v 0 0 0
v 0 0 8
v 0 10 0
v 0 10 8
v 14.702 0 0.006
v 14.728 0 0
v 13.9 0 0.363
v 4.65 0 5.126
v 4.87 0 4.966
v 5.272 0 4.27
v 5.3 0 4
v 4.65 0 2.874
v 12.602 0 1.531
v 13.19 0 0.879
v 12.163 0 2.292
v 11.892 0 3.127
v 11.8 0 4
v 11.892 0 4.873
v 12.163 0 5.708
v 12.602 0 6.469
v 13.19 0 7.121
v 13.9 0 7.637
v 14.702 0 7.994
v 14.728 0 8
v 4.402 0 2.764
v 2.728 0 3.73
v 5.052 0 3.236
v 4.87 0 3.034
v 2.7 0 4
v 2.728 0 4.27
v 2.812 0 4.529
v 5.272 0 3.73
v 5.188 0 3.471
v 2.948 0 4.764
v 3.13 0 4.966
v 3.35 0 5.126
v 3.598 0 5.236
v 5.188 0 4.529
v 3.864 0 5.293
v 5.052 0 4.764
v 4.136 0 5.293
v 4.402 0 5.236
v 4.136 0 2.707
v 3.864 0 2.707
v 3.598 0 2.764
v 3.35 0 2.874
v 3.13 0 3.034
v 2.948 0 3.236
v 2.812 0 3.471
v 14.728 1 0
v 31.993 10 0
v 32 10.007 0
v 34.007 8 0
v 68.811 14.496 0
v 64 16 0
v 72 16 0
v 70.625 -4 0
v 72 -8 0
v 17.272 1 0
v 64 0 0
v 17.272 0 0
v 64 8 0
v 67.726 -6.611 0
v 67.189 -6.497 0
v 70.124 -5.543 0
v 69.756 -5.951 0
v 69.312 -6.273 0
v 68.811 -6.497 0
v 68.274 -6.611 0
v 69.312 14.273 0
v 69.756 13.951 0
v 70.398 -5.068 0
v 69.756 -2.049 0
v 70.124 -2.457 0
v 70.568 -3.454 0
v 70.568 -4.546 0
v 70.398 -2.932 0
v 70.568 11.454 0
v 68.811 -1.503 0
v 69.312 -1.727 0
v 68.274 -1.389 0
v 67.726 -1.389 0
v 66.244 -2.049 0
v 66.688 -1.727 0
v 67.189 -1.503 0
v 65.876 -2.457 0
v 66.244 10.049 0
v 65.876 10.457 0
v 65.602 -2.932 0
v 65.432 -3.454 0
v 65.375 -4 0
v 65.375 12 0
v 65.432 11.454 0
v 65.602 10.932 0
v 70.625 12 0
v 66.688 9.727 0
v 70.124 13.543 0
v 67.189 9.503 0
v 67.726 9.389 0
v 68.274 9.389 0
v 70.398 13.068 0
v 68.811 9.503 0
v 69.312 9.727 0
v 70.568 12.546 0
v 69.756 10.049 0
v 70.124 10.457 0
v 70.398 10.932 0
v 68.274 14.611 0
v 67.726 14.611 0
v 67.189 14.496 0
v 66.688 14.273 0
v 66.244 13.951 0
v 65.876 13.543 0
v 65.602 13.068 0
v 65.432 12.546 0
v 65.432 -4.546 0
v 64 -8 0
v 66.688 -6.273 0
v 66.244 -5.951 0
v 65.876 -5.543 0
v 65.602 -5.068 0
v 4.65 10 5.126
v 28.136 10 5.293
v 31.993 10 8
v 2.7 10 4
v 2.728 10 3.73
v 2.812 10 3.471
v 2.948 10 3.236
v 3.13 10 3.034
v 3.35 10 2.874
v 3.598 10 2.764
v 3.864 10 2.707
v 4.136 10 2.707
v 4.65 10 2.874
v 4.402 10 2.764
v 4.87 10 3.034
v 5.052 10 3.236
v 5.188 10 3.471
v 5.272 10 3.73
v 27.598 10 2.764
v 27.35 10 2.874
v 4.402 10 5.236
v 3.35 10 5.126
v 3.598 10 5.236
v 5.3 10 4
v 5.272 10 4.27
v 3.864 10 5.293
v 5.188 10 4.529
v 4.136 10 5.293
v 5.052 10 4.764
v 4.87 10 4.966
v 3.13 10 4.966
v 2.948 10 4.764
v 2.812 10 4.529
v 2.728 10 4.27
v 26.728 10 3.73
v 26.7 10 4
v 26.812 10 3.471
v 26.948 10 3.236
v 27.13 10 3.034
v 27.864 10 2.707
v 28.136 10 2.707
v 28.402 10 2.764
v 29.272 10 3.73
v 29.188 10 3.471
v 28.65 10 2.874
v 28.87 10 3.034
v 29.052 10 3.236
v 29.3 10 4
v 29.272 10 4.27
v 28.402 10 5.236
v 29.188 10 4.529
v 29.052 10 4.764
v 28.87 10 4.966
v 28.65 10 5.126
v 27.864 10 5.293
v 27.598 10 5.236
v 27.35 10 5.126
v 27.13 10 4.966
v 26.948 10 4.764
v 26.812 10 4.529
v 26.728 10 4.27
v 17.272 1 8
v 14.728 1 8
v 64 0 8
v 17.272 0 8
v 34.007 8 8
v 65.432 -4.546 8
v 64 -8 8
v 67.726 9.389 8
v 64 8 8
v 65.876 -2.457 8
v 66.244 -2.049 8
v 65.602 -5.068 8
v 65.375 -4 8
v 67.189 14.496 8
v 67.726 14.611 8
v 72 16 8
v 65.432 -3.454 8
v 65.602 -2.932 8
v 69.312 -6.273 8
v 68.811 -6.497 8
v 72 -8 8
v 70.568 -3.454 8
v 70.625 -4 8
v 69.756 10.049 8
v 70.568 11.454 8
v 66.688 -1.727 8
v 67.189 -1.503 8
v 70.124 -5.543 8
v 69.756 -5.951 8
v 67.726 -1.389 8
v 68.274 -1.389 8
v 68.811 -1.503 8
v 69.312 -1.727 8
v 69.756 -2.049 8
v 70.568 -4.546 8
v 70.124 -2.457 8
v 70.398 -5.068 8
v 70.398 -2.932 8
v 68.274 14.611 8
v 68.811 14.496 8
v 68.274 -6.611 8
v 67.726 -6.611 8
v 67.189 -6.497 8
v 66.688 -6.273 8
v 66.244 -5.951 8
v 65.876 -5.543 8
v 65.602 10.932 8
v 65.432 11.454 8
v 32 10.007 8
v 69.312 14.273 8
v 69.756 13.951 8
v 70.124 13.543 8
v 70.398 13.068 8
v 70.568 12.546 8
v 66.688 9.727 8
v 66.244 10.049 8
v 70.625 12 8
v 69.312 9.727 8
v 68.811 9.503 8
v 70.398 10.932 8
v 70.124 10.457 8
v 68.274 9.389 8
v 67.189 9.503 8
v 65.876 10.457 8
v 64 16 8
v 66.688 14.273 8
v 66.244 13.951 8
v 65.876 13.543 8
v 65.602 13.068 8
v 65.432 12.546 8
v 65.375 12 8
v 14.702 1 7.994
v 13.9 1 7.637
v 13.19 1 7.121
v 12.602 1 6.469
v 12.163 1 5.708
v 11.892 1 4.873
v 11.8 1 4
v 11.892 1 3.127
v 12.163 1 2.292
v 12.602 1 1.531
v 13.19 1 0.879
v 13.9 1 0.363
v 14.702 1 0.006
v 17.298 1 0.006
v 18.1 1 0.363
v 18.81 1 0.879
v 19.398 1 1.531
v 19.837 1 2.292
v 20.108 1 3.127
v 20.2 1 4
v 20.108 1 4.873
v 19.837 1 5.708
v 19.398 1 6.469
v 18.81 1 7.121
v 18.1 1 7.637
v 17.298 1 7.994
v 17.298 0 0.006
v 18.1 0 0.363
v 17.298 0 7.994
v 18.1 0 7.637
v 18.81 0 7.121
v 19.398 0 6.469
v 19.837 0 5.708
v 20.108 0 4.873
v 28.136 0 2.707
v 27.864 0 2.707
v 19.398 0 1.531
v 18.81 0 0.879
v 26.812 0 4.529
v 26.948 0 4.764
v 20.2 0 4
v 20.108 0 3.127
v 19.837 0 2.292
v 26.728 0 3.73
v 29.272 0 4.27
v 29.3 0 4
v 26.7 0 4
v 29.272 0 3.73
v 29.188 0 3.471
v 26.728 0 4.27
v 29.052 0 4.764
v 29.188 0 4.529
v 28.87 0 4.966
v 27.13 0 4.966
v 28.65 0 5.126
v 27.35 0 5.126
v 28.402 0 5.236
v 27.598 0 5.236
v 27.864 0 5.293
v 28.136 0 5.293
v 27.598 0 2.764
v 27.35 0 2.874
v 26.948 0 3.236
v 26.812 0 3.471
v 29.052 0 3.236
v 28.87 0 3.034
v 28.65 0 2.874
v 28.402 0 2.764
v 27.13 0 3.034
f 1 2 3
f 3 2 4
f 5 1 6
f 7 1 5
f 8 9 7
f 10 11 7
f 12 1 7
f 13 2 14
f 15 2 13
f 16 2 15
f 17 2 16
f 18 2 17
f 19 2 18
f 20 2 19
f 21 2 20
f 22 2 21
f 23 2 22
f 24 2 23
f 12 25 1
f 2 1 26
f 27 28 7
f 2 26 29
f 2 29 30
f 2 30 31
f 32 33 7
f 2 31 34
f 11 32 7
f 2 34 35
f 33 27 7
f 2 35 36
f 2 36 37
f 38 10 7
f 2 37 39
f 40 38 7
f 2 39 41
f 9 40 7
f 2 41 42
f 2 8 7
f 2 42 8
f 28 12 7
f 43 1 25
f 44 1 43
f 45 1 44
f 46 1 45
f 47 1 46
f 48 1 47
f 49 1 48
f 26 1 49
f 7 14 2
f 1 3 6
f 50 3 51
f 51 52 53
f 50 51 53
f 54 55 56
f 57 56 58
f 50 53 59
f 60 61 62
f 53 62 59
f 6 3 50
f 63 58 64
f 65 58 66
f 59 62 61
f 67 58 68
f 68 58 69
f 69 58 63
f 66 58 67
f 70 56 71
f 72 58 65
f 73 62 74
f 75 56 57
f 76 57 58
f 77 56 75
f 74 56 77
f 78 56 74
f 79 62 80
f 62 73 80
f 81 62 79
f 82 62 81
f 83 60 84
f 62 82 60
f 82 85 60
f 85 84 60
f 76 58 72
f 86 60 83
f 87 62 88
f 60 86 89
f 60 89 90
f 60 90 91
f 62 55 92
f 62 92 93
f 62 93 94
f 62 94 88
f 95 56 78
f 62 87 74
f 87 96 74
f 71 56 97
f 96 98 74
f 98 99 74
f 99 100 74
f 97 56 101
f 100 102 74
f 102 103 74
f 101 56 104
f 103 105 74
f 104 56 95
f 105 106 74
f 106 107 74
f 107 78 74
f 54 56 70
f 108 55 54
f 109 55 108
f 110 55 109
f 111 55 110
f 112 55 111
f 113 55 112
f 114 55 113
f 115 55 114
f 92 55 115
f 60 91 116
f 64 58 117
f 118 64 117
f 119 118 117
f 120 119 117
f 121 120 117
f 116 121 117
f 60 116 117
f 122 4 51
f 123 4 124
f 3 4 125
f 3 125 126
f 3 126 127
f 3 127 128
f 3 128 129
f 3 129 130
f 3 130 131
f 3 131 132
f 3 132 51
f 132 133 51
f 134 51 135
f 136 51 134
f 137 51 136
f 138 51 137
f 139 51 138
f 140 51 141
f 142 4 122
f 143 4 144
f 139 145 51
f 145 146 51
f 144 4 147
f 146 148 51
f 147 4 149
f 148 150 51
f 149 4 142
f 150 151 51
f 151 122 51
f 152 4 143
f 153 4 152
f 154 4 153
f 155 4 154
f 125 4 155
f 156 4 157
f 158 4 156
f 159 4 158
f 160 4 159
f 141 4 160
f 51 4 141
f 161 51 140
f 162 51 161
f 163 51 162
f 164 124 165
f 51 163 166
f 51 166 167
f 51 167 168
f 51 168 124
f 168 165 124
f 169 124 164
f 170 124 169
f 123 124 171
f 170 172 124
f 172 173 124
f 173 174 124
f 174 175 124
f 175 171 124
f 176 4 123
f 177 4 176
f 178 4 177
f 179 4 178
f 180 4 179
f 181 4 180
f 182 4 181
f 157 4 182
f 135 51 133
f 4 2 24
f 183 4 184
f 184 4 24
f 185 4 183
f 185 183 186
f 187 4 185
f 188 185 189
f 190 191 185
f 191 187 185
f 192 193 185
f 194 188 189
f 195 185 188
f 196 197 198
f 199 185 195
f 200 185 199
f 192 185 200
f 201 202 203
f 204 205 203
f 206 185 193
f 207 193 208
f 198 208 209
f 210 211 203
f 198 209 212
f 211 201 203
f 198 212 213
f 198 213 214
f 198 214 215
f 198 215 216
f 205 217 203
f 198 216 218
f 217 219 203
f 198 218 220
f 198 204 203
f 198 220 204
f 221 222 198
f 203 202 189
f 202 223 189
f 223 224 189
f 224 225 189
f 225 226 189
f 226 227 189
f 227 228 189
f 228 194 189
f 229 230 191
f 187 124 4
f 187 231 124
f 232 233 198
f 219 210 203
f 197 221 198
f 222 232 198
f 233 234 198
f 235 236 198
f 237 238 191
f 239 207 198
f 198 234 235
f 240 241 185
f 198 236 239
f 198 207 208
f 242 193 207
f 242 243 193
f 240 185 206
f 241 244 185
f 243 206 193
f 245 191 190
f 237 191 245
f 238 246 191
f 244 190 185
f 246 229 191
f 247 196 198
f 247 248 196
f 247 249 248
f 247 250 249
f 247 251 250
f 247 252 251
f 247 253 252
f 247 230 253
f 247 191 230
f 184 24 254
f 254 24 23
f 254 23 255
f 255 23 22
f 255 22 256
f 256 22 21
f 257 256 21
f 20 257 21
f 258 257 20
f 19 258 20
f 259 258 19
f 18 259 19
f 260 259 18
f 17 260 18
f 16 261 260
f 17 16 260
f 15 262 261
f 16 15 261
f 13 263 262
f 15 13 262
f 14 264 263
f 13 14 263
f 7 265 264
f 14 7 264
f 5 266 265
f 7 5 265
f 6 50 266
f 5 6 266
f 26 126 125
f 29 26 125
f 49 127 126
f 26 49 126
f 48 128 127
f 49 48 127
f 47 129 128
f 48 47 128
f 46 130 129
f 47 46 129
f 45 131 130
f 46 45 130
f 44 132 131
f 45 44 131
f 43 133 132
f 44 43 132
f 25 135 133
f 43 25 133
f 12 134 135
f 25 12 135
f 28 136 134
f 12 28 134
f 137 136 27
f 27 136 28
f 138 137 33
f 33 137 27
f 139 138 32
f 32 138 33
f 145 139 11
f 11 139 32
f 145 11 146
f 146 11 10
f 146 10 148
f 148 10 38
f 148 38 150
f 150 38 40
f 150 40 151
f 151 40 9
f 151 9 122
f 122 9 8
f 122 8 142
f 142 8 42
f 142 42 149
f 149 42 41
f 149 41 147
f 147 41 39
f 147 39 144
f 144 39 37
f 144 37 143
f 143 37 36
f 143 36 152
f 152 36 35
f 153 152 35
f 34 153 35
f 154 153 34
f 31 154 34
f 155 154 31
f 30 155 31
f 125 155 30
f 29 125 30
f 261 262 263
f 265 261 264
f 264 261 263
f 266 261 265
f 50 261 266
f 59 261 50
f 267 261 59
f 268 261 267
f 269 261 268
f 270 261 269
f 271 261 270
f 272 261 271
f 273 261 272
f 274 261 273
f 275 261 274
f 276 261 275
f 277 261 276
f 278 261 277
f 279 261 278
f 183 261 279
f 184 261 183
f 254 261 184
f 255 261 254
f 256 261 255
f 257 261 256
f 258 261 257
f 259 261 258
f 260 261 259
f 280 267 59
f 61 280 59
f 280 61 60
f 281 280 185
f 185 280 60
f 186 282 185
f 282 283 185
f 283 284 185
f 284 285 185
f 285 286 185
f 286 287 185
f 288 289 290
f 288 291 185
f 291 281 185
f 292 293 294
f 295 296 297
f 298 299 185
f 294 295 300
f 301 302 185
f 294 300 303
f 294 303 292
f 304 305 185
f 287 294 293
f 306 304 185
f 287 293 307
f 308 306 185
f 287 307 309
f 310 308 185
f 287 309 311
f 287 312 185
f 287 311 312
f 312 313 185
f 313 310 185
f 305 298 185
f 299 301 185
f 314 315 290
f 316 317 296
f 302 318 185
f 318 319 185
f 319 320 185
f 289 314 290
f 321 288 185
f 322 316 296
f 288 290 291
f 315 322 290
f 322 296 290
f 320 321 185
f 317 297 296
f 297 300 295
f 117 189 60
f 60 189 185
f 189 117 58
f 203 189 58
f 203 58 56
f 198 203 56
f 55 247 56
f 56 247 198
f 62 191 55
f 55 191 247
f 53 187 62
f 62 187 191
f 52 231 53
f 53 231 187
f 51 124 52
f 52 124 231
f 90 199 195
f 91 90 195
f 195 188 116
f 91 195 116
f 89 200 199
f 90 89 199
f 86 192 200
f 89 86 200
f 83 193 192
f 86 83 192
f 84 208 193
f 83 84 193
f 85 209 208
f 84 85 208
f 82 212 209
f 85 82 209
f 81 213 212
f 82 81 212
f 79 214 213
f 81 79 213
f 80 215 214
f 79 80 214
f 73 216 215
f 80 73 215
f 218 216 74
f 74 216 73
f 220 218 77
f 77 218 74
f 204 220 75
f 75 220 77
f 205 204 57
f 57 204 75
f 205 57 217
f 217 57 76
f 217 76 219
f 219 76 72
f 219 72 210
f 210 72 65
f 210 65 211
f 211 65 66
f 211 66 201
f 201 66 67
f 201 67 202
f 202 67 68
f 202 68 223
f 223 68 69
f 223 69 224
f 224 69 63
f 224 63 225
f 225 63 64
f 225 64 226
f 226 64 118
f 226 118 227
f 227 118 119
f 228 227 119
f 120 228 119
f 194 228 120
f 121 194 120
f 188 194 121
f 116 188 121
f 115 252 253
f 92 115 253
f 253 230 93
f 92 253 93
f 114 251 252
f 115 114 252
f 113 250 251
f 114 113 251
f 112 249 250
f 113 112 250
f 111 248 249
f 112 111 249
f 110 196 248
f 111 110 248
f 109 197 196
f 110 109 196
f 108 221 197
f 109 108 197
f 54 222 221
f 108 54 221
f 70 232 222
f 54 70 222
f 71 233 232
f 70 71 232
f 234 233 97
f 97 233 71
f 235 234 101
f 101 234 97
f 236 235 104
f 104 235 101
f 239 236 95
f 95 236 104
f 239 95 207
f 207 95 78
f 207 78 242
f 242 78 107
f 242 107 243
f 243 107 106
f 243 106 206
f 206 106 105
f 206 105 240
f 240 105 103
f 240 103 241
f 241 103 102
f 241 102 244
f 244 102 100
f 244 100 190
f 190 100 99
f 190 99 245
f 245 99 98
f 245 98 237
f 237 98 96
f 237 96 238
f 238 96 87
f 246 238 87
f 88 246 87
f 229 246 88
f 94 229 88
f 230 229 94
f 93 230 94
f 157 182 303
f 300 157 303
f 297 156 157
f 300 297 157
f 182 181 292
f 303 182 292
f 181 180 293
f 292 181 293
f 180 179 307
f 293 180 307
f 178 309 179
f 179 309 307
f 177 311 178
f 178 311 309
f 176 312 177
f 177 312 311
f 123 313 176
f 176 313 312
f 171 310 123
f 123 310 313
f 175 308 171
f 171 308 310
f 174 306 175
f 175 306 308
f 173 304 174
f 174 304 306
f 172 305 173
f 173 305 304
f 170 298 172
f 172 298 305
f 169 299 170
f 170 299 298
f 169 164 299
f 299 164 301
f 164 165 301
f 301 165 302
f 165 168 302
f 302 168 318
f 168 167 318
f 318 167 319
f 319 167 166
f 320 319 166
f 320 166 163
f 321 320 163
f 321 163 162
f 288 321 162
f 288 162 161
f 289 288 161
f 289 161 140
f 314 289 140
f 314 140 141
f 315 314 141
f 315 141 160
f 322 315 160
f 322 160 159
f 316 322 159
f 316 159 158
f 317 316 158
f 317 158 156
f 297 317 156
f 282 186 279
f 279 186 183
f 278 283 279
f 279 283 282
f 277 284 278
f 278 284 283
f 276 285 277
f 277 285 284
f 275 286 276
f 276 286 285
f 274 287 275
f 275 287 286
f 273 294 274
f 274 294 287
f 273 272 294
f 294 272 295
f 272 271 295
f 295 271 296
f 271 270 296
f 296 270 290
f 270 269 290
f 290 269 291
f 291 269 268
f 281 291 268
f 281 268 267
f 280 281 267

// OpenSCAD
// Description: "Tapster - Mobile Automation Robot"
// Project home: http://tapsterbot.com

beam_width     = 8;
hole_diameter  = 5.25;
hole_radius    = hole_diameter / 2;
beam_length = 72;

difference() {
    // Draw the beam...
    union(){
        cube([beam_length,beam_width,beam_width]);

        translate([0,6,0])
        cube([32,4,8]);

        translate([32.0,4.35,0])
        rotate([0,0,45])
        cube([4,4,8]);

        rotate(90)
        translate([-8,-8*9,0])
        cube([24,8,8]);

        //rotate(90)
        //translate([10,-8*9,4])
        //cube([8,8,4]);
    }
    
    rotate([90,0,0])
    translate([16,4,-1])
    cylinder(r=4.2, h=5, $fn=30);

    // Hole #1 for servo
    rotate([90,0,0])
    translate([4,beam_width/2,-12])
    cylinder(r=1.3, h=14, $fn=30);

    // Hole #2 for servo
    rotate([90,0,0])
    translate([28,beam_width/2,-12])
    cylinder(r=1.3, h=14, $fn=30);

    // Diagonal slope cut
    //translate([8*3,-1,10.75])
    //rotate([0,8,0])
    //cube([60,10,5]);

    // Holes for magnets
    translate([8*8+4,-4,-5])
    cylinder(r=hole_radius, h=20, $fn=30);

    // Holes for magnets
    translate([8*8+4,12,-5])
    cylinder(r=hole_radius, h=20, $fn=30);

    
}
